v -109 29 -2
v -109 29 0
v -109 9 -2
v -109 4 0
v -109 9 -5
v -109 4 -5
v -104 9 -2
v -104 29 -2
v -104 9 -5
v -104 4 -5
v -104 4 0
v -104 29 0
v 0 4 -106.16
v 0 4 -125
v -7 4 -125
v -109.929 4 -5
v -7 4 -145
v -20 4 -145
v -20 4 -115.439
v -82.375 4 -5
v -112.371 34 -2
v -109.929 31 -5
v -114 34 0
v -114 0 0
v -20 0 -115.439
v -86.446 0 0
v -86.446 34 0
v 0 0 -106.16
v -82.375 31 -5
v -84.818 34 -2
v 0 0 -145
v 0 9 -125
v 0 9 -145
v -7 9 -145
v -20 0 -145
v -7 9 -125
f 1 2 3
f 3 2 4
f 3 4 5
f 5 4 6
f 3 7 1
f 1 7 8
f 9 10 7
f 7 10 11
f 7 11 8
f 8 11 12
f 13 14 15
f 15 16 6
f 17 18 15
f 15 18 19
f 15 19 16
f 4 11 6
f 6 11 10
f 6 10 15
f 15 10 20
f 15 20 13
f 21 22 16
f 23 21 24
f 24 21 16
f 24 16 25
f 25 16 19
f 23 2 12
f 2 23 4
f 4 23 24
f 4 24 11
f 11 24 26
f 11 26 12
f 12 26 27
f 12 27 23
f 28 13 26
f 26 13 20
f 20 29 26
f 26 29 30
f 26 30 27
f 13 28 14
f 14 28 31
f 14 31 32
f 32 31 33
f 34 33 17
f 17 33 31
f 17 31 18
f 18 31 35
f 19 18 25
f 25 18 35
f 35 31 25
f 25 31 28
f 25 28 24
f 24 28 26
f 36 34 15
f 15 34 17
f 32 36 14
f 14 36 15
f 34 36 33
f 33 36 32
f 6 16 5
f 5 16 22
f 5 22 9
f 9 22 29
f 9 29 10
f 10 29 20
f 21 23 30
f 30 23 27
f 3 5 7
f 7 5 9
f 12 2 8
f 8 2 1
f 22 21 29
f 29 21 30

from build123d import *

# Parameters (mm, degrees)
BOSS_EXTRUDE1_DEPTH = 4
SKETCH4_W           = 7
SKETCH4_H           = 20
BOSS_EXTRUDE3_DEPTH = 5
BOSS_EXTRUDE4_DEPTH = 30
SKETCH6_W           = 5
SKETCH6_H           = 5
CUT_EXTRUDE2_DEPTH  = 30
SKETCH7_W           = 5
SKETCH7_H           = 5
BOSS_EXTRUDE5_DEPTH = 2
CHAMFER1_SIZE       = 3


with BuildPart() as part:
    # Sketch1 → Boss-Extrude1 (new body)
    with BuildSketch(Plane(origin=(0, 0, 0), x_dir=(1, 0, 0), z_dir=(0, 1, 0))):
        Polygon((-114, 0), (-86.446344316, 0), (0, 106.160035841), (0, 140), (0, 145), (-20, 145), (-20, 115.438596491), align=None)
    extrude(amount=BOSS_EXTRUDE1_DEPTH)

    # Sketch4 → Boss-Extrude3 (add)
    with BuildSketch(Plane(origin=(0, 4, 0), x_dir=(1, 0, 0), z_dir=(0, 1, 0))):
        with Locations((-3.5, 135)):
            Rectangle(SKETCH4_W, SKETCH4_H)
    extrude(amount=BOSS_EXTRUDE3_DEPTH)

    # Sketch5 → Boss-Extrude4 (add)
    with BuildSketch(Plane(origin=(0, 4, 0), x_dir=(1, 0, 0), z_dir=(0, 1, 0))):
        Polygon((-86.446344316, 0), (-104, 0), (-104, 2), (-109, 2), (-109, 0), (-114, 0), (-109.928571429, 5), (-82.374833619, 5), align=None)
    extrude(amount=BOSS_EXTRUDE4_DEPTH)

    # Sketch6 → Cut-Extrude2 (cut)
    with BuildSketch(Plane.XY.offset(-2)):
        with Locations((-106.5, 6.5)):
            Rectangle(SKETCH6_W, SKETCH6_H)
    extrude(amount=-CUT_EXTRUDE2_DEPTH, mode=Mode.SUBTRACT)

    # Sketch7 → Boss-Extrude5 (add)
    with BuildSketch(Plane.XY.offset(-2)):
        with Locations((-106.5, 31.5)):
            Rectangle(SKETCH7_W, SKETCH7_H)
    extrude(amount=BOSS_EXTRUDE5_DEPTH)

    # Chamfer1
    chamfer1_edges = [part.edges().sort_by_distance(p)[0] for p in [
        (-96.151702524, 34, -5),
    ]]
    chamfer(chamfer1_edges, length=CHAMFER1_SIZE)


solid = part.part
